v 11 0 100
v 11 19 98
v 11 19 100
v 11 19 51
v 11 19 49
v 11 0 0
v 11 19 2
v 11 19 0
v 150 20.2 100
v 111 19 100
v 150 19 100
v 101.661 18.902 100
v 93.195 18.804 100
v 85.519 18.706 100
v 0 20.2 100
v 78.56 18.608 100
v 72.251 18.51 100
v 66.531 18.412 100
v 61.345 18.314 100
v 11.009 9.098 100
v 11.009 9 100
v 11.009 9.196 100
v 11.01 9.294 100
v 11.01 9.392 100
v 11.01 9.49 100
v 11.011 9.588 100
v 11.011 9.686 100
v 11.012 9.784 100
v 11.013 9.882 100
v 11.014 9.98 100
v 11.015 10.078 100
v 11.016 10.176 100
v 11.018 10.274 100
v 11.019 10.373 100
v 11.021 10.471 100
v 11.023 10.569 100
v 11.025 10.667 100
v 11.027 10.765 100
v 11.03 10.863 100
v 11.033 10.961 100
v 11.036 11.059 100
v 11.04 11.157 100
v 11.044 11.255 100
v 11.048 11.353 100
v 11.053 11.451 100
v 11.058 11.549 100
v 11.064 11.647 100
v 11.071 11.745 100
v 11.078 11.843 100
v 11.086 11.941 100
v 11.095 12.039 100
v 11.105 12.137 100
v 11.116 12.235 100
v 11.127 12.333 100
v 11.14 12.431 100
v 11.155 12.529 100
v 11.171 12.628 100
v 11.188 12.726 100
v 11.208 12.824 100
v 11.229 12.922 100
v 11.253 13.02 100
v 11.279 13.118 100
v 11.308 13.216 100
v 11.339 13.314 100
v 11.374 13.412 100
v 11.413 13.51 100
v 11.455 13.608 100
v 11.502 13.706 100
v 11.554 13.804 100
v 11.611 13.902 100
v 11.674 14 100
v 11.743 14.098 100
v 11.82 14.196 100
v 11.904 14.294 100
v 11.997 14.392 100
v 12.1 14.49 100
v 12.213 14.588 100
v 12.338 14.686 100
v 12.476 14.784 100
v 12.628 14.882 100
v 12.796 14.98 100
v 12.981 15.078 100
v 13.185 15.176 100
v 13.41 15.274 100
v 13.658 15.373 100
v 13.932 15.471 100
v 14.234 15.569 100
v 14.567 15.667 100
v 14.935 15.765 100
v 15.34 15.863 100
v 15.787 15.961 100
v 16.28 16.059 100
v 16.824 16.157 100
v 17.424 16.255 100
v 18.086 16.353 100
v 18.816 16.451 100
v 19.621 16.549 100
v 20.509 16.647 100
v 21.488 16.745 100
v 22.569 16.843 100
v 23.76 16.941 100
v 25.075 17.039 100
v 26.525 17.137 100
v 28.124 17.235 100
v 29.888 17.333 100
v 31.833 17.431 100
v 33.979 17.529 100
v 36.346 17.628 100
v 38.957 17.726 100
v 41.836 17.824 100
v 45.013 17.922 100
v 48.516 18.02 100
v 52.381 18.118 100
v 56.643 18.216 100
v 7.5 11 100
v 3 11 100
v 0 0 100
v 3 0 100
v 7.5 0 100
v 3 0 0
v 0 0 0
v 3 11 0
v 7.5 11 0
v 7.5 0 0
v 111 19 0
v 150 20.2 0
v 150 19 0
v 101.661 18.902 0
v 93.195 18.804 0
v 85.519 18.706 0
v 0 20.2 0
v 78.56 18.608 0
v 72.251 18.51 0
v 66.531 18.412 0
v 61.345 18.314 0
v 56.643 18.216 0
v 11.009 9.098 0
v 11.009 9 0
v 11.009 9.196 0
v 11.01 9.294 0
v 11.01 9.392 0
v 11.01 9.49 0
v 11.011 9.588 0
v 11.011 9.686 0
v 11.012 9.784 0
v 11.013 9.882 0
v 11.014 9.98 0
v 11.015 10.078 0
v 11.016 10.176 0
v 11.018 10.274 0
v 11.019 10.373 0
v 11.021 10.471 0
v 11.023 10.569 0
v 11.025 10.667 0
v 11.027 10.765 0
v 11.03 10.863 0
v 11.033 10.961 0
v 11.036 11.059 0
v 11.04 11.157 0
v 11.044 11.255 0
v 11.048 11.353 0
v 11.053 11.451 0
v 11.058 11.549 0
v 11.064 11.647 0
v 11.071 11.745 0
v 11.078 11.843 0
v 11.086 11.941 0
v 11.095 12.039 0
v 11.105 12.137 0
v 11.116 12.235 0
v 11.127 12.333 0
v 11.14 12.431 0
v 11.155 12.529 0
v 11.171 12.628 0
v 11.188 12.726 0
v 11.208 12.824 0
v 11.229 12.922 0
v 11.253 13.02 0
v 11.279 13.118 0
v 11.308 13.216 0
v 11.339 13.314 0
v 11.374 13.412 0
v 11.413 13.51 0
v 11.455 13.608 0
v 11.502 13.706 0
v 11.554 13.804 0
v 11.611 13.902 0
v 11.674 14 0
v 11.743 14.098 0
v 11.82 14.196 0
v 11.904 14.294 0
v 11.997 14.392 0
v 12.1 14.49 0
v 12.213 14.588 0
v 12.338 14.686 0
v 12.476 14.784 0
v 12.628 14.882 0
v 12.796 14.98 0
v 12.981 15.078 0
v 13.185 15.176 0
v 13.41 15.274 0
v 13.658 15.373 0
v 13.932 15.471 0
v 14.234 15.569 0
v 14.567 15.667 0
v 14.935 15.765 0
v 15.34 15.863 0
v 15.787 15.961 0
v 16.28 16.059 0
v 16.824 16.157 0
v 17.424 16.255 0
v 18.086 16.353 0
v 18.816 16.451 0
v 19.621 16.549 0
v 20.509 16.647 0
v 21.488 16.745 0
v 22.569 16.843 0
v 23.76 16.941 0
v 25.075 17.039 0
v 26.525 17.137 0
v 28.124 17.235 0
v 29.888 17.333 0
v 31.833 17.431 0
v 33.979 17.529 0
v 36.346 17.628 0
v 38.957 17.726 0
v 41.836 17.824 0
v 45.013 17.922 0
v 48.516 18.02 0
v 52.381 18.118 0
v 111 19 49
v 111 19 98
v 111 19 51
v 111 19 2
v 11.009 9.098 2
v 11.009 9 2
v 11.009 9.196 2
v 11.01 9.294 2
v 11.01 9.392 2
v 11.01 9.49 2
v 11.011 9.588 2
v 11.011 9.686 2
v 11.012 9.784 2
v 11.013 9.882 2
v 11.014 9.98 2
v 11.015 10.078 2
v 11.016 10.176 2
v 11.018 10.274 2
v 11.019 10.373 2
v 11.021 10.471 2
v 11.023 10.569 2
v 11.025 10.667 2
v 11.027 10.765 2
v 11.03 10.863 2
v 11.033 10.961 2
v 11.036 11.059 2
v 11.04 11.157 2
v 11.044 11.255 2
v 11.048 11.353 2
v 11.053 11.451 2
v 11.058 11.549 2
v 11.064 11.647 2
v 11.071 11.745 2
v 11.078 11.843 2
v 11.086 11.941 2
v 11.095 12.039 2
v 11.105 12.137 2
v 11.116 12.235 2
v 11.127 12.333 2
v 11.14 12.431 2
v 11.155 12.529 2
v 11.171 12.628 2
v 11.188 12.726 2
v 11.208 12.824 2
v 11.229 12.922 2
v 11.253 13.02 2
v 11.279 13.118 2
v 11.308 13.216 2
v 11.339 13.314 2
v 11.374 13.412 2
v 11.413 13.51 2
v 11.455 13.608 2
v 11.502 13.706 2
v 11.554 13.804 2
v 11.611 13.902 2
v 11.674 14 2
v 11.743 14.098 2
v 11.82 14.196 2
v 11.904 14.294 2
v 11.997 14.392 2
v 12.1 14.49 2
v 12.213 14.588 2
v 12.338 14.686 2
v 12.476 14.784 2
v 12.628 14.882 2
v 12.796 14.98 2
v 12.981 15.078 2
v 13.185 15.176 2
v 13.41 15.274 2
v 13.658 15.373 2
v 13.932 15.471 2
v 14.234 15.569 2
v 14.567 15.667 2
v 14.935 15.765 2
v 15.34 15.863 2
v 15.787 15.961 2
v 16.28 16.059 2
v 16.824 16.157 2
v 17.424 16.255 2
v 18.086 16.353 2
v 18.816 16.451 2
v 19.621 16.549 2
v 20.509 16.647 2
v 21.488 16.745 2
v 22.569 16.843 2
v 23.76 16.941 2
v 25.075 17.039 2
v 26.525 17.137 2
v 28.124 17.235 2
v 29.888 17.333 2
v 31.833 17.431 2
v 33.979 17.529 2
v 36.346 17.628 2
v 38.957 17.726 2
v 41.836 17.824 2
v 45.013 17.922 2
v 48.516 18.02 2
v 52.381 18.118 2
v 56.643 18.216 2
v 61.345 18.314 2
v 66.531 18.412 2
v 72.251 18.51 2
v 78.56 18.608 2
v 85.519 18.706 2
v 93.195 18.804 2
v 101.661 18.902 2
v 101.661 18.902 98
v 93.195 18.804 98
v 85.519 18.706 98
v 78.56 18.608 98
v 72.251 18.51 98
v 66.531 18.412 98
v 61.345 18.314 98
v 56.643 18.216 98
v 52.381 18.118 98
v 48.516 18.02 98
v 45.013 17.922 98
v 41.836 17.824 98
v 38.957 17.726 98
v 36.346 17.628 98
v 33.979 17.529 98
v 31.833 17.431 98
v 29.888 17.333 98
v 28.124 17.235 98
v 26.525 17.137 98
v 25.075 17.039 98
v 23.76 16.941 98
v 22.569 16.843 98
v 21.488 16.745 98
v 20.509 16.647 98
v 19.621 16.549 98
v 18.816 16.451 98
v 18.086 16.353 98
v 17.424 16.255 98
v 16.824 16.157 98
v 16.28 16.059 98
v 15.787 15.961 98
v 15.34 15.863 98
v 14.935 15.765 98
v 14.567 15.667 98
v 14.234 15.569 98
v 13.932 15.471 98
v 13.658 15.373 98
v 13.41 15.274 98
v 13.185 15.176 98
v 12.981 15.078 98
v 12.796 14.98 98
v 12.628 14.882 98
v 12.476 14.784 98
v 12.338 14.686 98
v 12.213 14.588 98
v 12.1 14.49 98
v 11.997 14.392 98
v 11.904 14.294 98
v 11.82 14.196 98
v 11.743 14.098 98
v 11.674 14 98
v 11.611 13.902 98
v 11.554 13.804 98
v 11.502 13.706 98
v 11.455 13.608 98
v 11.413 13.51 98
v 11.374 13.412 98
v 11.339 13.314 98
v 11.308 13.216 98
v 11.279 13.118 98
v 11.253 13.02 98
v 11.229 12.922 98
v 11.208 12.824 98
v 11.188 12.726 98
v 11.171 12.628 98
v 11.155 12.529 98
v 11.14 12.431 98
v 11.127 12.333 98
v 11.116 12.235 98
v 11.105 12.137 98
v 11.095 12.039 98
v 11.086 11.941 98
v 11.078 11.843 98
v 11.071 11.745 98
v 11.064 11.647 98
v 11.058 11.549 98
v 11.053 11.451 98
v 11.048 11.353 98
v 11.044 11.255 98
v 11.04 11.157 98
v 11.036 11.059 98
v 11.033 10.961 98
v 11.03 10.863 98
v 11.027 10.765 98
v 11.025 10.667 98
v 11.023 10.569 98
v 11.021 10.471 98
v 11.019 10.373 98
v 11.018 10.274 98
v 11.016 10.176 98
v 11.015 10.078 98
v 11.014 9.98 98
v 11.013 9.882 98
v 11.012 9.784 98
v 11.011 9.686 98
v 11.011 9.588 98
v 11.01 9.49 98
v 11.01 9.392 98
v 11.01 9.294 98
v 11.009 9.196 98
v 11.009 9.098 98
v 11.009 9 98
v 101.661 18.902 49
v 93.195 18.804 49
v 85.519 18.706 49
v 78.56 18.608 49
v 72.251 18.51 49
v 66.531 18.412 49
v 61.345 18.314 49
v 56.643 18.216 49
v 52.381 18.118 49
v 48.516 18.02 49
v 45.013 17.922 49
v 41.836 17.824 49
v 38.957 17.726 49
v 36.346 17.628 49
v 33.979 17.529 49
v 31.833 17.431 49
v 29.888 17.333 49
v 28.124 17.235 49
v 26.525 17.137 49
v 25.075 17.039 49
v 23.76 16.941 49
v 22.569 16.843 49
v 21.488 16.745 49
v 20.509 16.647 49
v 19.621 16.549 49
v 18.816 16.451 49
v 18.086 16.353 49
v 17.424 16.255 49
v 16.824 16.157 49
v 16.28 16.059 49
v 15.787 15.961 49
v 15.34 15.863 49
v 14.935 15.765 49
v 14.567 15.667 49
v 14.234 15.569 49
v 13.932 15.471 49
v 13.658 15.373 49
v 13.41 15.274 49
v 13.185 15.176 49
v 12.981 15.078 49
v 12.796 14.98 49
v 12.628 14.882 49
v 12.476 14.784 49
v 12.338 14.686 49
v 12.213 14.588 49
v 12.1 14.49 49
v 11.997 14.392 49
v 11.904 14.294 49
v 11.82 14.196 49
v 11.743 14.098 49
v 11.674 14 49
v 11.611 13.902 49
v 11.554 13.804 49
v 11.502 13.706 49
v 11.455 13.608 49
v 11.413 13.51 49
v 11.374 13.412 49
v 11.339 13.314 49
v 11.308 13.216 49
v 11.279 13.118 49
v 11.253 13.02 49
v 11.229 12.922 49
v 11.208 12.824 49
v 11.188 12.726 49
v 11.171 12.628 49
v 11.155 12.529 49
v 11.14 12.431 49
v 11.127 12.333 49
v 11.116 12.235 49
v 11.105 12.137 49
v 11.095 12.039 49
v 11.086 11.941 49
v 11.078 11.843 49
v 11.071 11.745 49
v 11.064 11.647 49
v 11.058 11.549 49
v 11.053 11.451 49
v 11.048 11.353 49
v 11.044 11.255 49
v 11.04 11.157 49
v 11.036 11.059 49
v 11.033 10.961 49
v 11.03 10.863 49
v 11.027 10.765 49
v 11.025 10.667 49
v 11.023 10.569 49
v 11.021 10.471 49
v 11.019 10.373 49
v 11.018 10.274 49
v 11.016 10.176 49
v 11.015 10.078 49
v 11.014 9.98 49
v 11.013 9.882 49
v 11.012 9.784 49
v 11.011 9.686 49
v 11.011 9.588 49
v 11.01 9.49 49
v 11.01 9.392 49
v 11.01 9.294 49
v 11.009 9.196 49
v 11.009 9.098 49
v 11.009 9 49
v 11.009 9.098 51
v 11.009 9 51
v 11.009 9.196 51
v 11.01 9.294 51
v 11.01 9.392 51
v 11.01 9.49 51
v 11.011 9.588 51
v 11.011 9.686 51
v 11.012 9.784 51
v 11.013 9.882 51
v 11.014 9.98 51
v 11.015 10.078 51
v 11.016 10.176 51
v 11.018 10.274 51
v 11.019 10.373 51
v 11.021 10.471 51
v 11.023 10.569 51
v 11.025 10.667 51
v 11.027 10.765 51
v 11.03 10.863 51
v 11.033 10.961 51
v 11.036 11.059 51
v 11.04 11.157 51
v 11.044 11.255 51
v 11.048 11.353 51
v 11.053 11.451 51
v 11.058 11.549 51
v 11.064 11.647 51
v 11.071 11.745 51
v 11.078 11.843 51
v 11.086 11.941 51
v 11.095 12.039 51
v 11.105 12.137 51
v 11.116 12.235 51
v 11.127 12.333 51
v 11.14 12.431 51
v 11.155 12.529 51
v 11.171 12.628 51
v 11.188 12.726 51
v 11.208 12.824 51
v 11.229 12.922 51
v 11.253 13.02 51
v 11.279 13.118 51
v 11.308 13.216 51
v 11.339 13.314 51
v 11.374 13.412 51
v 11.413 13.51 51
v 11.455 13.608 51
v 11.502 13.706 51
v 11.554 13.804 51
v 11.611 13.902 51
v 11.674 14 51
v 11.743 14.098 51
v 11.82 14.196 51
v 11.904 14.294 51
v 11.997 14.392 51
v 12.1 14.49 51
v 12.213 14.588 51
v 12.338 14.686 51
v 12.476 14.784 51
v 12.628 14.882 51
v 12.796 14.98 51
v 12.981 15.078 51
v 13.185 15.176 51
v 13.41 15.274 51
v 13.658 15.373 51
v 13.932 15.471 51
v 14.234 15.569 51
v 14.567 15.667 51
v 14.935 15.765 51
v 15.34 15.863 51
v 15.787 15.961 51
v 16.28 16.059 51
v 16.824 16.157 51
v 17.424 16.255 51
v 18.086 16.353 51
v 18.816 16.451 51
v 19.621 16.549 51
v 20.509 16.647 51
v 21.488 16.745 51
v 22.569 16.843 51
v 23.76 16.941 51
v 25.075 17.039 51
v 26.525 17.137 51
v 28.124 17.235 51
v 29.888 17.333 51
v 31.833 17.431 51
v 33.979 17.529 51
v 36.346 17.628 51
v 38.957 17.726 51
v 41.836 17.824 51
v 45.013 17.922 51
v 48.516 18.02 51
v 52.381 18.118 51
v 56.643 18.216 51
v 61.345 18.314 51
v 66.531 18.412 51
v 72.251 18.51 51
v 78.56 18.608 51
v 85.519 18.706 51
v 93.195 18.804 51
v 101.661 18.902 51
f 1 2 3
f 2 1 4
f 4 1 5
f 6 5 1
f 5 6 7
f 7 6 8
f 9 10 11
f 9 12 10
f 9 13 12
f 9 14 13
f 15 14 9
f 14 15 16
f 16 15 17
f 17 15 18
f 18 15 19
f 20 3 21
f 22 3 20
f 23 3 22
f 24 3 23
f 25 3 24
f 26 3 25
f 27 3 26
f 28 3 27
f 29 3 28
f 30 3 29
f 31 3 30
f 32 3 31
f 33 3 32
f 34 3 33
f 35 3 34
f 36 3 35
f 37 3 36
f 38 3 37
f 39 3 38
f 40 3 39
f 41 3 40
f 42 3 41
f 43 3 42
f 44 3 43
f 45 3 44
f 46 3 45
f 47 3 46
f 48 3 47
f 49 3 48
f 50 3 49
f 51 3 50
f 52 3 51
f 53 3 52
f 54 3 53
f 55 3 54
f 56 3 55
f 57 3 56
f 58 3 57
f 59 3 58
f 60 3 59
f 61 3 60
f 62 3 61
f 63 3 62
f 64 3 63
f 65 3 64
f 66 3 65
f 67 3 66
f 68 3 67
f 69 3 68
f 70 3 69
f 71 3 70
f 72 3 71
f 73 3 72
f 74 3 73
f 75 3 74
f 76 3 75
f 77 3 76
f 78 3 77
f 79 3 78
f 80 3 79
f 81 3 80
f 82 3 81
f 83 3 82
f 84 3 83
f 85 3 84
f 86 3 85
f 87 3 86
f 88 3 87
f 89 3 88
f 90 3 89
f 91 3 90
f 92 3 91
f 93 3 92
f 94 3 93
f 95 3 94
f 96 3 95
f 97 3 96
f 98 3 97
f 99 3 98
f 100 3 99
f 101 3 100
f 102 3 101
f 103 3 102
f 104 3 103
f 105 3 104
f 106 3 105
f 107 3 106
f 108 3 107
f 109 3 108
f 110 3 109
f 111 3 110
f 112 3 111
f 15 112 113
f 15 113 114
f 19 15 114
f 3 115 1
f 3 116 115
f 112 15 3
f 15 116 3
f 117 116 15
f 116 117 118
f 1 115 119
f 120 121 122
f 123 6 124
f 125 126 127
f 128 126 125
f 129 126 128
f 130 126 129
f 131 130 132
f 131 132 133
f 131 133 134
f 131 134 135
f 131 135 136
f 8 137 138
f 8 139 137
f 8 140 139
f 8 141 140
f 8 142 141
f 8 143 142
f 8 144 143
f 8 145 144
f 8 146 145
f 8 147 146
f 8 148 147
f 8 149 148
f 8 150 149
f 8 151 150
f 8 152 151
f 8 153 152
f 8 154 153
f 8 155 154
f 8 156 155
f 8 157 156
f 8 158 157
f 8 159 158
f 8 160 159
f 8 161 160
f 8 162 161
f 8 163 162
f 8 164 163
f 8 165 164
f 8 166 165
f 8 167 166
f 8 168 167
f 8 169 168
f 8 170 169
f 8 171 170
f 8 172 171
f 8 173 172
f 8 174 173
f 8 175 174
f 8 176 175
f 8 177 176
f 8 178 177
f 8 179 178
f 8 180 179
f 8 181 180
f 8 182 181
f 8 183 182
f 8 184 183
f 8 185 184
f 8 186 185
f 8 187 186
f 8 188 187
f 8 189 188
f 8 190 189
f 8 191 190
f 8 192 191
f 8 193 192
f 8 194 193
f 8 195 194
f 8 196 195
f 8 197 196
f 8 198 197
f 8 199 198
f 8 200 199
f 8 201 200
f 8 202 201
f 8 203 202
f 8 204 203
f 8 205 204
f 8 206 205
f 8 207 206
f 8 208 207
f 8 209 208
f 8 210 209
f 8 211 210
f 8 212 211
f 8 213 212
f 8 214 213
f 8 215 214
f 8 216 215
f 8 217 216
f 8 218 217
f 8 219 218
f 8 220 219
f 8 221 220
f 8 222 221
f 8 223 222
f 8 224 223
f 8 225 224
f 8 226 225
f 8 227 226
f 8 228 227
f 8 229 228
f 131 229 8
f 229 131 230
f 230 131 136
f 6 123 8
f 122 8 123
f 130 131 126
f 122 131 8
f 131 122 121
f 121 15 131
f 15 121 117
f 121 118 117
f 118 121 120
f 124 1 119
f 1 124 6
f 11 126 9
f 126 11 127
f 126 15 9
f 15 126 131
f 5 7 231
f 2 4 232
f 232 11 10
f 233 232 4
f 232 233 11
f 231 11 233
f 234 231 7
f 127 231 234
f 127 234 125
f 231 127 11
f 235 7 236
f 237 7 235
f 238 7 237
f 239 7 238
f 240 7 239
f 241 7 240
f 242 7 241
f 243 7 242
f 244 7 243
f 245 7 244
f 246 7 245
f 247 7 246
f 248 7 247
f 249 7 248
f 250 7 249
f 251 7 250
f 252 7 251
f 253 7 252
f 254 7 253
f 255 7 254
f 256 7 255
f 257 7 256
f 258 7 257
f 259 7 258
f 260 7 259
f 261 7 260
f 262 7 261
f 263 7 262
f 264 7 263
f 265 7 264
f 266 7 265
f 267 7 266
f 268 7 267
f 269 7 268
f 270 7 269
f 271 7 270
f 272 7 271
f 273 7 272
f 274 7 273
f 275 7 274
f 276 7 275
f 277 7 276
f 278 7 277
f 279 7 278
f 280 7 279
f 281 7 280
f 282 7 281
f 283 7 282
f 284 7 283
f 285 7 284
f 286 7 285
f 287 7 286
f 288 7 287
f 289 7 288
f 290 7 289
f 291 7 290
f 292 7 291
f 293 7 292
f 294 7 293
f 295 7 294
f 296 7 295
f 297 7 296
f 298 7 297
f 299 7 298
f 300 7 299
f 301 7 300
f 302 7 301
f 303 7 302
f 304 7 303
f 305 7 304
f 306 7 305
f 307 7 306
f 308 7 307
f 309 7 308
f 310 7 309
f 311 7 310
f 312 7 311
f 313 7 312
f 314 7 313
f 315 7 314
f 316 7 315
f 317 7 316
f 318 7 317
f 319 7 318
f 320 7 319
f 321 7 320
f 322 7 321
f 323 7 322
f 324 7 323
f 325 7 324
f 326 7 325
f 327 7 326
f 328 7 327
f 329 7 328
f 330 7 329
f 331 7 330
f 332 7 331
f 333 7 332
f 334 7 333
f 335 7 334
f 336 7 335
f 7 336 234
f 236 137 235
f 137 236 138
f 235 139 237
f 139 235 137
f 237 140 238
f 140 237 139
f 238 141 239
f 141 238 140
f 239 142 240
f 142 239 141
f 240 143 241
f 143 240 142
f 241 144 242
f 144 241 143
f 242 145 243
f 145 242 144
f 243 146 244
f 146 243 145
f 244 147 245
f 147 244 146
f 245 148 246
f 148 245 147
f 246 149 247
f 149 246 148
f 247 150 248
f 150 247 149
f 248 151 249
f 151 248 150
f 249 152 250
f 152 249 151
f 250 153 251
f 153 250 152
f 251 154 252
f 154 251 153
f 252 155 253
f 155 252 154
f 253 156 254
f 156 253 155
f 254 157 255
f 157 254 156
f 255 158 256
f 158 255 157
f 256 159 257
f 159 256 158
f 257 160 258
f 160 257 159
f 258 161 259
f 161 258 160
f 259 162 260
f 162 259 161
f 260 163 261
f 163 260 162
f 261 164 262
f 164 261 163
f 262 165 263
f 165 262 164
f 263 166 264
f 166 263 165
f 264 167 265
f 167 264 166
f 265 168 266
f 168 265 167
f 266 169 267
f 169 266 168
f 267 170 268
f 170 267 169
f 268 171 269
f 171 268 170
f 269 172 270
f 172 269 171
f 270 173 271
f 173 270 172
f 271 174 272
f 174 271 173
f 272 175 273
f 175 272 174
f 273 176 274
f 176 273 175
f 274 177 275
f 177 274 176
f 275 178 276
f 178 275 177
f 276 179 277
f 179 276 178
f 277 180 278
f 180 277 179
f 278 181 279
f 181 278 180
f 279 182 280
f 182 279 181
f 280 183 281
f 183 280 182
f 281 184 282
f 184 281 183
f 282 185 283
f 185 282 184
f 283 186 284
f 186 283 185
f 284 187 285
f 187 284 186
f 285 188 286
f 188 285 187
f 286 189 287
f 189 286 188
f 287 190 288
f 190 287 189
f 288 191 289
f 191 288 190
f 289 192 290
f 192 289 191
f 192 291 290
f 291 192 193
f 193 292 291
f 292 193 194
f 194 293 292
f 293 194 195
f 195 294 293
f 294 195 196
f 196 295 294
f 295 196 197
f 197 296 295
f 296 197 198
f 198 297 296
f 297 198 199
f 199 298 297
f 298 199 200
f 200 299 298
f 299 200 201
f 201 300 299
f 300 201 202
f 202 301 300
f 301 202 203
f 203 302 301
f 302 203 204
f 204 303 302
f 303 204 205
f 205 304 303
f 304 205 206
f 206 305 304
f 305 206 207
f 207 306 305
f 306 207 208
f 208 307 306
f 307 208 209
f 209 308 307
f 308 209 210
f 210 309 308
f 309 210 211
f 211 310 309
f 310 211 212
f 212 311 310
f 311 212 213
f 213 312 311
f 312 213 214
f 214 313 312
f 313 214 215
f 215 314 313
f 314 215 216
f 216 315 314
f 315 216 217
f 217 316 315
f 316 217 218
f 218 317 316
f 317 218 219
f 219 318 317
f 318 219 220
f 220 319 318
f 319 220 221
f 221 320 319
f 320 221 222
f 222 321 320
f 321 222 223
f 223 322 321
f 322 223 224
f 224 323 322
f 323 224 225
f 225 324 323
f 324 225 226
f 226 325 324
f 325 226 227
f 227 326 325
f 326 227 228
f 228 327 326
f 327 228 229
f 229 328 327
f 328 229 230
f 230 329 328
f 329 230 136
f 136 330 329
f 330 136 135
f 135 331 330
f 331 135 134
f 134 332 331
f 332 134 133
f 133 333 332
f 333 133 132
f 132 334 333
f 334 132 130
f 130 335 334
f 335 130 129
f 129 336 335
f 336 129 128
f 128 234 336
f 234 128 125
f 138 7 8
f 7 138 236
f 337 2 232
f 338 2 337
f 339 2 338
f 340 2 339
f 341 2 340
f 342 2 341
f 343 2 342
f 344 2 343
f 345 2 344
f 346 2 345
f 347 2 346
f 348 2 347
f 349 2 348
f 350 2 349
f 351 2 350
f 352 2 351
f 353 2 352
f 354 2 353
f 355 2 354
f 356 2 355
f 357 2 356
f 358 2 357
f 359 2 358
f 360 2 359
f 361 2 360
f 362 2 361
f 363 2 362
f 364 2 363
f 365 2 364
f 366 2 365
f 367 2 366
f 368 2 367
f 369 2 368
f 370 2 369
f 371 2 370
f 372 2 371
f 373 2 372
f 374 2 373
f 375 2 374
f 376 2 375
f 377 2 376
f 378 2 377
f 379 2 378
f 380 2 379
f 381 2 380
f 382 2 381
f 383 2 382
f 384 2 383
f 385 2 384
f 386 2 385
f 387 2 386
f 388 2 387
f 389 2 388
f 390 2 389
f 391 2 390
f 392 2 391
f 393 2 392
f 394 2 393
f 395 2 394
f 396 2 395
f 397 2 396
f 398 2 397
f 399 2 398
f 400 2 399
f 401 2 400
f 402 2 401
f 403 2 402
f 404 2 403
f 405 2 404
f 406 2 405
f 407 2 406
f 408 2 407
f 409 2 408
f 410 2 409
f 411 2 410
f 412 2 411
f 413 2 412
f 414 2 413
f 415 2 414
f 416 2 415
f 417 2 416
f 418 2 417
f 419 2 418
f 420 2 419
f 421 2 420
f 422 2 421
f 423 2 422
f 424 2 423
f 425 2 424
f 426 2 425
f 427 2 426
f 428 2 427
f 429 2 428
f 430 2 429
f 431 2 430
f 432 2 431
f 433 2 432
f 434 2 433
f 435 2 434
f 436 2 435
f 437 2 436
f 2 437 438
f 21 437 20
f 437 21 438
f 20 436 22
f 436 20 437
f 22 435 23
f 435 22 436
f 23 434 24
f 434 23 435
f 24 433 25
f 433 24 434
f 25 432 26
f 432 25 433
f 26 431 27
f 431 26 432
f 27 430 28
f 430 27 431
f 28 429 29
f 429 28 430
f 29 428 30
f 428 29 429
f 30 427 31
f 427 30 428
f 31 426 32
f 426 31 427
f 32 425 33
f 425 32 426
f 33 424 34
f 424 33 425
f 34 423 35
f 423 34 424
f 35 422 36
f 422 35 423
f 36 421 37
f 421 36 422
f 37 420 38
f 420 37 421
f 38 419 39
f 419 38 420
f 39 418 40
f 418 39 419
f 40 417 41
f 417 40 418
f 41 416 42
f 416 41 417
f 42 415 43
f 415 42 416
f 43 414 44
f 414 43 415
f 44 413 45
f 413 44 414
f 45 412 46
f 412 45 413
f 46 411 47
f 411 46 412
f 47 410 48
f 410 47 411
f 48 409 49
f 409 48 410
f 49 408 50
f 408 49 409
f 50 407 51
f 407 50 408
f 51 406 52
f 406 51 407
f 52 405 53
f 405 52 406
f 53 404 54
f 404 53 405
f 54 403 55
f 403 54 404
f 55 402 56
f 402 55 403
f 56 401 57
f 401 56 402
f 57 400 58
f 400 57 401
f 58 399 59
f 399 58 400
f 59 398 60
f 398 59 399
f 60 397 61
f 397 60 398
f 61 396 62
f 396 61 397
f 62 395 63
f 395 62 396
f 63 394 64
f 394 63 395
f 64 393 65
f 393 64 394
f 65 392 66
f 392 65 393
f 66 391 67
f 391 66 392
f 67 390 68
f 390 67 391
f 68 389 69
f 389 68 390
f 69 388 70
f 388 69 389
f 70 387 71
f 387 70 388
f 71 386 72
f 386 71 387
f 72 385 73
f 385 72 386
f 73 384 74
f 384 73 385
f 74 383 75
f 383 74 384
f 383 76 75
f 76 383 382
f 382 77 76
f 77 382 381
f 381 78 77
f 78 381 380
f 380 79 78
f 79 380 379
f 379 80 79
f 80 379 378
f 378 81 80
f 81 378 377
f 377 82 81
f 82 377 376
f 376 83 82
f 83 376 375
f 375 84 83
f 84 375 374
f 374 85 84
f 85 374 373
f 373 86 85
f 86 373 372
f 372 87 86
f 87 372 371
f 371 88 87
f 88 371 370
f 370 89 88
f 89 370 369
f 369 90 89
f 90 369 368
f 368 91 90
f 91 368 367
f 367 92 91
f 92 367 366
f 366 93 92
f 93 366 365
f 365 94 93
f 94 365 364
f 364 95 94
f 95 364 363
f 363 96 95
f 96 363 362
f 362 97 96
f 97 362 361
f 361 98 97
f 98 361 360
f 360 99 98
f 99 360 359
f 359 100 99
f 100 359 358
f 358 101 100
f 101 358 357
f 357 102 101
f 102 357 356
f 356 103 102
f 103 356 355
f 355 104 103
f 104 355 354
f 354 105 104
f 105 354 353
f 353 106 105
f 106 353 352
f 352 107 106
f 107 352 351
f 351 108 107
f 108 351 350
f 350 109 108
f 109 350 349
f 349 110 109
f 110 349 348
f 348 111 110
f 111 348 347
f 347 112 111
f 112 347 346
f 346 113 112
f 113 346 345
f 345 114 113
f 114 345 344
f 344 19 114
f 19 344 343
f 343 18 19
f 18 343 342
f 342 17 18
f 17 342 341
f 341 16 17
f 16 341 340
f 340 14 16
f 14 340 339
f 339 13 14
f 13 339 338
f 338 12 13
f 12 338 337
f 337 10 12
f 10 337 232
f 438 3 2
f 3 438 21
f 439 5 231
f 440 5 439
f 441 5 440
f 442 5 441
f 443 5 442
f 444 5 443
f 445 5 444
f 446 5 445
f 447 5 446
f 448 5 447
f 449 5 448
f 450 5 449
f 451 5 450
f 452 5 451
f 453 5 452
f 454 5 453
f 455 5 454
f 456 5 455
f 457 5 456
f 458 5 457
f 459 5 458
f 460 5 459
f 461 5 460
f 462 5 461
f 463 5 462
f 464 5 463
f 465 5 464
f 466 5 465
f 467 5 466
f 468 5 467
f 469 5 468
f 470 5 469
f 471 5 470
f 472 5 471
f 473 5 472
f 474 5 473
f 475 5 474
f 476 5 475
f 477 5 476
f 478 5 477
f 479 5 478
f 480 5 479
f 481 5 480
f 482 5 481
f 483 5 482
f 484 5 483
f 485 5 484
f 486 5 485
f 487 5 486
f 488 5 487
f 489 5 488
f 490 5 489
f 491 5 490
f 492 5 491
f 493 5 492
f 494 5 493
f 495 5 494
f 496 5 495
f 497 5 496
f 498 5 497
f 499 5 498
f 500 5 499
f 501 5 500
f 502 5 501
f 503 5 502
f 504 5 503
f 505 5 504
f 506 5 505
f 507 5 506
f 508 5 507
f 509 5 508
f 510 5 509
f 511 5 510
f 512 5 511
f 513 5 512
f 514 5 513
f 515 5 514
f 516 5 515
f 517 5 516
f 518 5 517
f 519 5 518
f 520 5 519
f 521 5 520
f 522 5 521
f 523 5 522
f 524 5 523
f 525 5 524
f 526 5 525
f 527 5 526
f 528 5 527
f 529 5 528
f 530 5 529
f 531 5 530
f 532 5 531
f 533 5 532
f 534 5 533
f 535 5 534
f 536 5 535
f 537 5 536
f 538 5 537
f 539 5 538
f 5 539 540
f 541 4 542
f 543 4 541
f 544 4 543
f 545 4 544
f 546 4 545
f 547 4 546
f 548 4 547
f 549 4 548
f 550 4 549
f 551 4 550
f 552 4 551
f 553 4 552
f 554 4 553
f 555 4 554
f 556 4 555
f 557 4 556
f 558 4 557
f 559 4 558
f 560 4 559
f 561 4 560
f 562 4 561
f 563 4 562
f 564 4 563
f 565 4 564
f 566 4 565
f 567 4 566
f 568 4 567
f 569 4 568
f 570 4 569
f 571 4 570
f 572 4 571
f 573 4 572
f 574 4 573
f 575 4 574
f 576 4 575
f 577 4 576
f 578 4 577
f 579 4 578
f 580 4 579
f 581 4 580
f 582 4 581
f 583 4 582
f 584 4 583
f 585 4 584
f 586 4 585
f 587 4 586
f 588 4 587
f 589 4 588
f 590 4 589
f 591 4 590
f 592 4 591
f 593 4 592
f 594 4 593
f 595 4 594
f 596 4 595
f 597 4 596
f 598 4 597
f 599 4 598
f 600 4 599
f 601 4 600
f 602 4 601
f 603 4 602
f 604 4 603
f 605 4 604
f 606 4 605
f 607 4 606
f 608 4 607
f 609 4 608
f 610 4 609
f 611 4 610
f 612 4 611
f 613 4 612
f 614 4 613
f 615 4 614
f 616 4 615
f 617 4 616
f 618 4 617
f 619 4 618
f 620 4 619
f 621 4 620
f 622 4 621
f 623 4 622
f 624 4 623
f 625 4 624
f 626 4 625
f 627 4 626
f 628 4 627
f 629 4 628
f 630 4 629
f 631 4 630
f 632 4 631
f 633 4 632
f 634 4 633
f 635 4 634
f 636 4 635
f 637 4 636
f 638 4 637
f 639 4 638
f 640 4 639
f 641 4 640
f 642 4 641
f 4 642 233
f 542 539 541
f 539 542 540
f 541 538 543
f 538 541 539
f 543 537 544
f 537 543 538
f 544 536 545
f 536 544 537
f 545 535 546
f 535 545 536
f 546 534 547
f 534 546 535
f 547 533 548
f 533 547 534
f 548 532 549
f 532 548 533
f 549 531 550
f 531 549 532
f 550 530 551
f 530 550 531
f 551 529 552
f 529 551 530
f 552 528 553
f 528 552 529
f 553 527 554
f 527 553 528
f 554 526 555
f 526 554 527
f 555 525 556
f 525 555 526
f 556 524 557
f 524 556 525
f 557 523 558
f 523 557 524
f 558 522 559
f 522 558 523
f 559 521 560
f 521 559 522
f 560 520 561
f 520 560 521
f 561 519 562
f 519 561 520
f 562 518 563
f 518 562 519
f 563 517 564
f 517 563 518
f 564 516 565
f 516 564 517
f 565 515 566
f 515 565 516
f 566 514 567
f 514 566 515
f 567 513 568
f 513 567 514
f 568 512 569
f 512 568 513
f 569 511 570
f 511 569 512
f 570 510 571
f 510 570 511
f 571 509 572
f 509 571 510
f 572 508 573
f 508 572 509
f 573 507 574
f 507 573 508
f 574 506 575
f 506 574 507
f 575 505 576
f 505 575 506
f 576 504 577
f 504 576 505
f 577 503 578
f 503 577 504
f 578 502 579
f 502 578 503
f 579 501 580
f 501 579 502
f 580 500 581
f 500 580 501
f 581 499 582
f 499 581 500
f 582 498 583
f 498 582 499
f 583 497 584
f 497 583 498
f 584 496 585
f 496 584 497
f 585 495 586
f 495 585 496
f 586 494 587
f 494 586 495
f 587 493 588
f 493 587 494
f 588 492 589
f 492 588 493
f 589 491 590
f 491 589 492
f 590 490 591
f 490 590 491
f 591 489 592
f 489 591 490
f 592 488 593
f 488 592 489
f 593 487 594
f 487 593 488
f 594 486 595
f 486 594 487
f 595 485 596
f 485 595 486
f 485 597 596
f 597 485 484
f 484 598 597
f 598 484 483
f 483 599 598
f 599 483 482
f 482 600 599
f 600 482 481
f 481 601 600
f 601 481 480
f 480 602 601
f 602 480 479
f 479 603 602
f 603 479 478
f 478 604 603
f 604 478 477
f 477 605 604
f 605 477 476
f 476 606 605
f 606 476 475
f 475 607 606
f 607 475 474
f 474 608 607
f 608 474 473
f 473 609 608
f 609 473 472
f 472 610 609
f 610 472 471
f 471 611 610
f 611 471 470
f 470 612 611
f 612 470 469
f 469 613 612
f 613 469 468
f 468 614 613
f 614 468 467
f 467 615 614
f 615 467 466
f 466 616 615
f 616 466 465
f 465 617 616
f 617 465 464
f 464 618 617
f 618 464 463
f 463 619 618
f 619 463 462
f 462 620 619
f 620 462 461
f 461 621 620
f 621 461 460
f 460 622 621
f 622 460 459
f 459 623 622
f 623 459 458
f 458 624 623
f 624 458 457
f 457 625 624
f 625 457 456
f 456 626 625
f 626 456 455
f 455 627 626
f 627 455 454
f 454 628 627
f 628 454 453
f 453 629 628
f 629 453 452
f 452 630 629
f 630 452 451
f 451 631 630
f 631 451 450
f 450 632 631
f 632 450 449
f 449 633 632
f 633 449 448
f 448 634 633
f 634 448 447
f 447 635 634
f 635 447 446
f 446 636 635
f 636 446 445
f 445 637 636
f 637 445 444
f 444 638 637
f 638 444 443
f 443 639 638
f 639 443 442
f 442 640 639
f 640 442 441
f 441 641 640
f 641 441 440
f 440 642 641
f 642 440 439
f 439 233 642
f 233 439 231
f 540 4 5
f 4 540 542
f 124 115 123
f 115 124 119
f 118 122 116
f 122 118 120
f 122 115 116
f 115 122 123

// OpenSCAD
function cosh(x) = 0.5*(exp(x)+exp(-x));
module strebe(x,y,z,b=0.6){
    dx=(x)/$fn;
    ym=cosh(x*b);
    dy=y/ym;
    //echo($fn); 
    p=[for (j=[0:$fn])[x-j*dx,dy*cosh(j*dx*b)]];
    pp=concat(p,[[0,0]]);
        
        
   // echo(pp);
    linear_extrude(height=z,slices =$fn)
    polygon(pp);
}
//strebe($fn=102,10,100,2,b=1);
difference(){
    union(){
        cube([11,20,100]);
        translate([0,19,0])cube([150,1.2,100]);
        translate([11,19,0])rotate(-90,[0,0,1])strebe($fn=102,10,100,2,b=1);
        translate([11,19,98])rotate(-90,[0,0,1])strebe($fn=102,10,100,2,b=1);
        translate([11,19,98/2])rotate(-90,[0,0,1])strebe($fn=102,10,100,2,b=1);
    }
translate([3,-1,-1])cube([4.5,12,202]);
}
